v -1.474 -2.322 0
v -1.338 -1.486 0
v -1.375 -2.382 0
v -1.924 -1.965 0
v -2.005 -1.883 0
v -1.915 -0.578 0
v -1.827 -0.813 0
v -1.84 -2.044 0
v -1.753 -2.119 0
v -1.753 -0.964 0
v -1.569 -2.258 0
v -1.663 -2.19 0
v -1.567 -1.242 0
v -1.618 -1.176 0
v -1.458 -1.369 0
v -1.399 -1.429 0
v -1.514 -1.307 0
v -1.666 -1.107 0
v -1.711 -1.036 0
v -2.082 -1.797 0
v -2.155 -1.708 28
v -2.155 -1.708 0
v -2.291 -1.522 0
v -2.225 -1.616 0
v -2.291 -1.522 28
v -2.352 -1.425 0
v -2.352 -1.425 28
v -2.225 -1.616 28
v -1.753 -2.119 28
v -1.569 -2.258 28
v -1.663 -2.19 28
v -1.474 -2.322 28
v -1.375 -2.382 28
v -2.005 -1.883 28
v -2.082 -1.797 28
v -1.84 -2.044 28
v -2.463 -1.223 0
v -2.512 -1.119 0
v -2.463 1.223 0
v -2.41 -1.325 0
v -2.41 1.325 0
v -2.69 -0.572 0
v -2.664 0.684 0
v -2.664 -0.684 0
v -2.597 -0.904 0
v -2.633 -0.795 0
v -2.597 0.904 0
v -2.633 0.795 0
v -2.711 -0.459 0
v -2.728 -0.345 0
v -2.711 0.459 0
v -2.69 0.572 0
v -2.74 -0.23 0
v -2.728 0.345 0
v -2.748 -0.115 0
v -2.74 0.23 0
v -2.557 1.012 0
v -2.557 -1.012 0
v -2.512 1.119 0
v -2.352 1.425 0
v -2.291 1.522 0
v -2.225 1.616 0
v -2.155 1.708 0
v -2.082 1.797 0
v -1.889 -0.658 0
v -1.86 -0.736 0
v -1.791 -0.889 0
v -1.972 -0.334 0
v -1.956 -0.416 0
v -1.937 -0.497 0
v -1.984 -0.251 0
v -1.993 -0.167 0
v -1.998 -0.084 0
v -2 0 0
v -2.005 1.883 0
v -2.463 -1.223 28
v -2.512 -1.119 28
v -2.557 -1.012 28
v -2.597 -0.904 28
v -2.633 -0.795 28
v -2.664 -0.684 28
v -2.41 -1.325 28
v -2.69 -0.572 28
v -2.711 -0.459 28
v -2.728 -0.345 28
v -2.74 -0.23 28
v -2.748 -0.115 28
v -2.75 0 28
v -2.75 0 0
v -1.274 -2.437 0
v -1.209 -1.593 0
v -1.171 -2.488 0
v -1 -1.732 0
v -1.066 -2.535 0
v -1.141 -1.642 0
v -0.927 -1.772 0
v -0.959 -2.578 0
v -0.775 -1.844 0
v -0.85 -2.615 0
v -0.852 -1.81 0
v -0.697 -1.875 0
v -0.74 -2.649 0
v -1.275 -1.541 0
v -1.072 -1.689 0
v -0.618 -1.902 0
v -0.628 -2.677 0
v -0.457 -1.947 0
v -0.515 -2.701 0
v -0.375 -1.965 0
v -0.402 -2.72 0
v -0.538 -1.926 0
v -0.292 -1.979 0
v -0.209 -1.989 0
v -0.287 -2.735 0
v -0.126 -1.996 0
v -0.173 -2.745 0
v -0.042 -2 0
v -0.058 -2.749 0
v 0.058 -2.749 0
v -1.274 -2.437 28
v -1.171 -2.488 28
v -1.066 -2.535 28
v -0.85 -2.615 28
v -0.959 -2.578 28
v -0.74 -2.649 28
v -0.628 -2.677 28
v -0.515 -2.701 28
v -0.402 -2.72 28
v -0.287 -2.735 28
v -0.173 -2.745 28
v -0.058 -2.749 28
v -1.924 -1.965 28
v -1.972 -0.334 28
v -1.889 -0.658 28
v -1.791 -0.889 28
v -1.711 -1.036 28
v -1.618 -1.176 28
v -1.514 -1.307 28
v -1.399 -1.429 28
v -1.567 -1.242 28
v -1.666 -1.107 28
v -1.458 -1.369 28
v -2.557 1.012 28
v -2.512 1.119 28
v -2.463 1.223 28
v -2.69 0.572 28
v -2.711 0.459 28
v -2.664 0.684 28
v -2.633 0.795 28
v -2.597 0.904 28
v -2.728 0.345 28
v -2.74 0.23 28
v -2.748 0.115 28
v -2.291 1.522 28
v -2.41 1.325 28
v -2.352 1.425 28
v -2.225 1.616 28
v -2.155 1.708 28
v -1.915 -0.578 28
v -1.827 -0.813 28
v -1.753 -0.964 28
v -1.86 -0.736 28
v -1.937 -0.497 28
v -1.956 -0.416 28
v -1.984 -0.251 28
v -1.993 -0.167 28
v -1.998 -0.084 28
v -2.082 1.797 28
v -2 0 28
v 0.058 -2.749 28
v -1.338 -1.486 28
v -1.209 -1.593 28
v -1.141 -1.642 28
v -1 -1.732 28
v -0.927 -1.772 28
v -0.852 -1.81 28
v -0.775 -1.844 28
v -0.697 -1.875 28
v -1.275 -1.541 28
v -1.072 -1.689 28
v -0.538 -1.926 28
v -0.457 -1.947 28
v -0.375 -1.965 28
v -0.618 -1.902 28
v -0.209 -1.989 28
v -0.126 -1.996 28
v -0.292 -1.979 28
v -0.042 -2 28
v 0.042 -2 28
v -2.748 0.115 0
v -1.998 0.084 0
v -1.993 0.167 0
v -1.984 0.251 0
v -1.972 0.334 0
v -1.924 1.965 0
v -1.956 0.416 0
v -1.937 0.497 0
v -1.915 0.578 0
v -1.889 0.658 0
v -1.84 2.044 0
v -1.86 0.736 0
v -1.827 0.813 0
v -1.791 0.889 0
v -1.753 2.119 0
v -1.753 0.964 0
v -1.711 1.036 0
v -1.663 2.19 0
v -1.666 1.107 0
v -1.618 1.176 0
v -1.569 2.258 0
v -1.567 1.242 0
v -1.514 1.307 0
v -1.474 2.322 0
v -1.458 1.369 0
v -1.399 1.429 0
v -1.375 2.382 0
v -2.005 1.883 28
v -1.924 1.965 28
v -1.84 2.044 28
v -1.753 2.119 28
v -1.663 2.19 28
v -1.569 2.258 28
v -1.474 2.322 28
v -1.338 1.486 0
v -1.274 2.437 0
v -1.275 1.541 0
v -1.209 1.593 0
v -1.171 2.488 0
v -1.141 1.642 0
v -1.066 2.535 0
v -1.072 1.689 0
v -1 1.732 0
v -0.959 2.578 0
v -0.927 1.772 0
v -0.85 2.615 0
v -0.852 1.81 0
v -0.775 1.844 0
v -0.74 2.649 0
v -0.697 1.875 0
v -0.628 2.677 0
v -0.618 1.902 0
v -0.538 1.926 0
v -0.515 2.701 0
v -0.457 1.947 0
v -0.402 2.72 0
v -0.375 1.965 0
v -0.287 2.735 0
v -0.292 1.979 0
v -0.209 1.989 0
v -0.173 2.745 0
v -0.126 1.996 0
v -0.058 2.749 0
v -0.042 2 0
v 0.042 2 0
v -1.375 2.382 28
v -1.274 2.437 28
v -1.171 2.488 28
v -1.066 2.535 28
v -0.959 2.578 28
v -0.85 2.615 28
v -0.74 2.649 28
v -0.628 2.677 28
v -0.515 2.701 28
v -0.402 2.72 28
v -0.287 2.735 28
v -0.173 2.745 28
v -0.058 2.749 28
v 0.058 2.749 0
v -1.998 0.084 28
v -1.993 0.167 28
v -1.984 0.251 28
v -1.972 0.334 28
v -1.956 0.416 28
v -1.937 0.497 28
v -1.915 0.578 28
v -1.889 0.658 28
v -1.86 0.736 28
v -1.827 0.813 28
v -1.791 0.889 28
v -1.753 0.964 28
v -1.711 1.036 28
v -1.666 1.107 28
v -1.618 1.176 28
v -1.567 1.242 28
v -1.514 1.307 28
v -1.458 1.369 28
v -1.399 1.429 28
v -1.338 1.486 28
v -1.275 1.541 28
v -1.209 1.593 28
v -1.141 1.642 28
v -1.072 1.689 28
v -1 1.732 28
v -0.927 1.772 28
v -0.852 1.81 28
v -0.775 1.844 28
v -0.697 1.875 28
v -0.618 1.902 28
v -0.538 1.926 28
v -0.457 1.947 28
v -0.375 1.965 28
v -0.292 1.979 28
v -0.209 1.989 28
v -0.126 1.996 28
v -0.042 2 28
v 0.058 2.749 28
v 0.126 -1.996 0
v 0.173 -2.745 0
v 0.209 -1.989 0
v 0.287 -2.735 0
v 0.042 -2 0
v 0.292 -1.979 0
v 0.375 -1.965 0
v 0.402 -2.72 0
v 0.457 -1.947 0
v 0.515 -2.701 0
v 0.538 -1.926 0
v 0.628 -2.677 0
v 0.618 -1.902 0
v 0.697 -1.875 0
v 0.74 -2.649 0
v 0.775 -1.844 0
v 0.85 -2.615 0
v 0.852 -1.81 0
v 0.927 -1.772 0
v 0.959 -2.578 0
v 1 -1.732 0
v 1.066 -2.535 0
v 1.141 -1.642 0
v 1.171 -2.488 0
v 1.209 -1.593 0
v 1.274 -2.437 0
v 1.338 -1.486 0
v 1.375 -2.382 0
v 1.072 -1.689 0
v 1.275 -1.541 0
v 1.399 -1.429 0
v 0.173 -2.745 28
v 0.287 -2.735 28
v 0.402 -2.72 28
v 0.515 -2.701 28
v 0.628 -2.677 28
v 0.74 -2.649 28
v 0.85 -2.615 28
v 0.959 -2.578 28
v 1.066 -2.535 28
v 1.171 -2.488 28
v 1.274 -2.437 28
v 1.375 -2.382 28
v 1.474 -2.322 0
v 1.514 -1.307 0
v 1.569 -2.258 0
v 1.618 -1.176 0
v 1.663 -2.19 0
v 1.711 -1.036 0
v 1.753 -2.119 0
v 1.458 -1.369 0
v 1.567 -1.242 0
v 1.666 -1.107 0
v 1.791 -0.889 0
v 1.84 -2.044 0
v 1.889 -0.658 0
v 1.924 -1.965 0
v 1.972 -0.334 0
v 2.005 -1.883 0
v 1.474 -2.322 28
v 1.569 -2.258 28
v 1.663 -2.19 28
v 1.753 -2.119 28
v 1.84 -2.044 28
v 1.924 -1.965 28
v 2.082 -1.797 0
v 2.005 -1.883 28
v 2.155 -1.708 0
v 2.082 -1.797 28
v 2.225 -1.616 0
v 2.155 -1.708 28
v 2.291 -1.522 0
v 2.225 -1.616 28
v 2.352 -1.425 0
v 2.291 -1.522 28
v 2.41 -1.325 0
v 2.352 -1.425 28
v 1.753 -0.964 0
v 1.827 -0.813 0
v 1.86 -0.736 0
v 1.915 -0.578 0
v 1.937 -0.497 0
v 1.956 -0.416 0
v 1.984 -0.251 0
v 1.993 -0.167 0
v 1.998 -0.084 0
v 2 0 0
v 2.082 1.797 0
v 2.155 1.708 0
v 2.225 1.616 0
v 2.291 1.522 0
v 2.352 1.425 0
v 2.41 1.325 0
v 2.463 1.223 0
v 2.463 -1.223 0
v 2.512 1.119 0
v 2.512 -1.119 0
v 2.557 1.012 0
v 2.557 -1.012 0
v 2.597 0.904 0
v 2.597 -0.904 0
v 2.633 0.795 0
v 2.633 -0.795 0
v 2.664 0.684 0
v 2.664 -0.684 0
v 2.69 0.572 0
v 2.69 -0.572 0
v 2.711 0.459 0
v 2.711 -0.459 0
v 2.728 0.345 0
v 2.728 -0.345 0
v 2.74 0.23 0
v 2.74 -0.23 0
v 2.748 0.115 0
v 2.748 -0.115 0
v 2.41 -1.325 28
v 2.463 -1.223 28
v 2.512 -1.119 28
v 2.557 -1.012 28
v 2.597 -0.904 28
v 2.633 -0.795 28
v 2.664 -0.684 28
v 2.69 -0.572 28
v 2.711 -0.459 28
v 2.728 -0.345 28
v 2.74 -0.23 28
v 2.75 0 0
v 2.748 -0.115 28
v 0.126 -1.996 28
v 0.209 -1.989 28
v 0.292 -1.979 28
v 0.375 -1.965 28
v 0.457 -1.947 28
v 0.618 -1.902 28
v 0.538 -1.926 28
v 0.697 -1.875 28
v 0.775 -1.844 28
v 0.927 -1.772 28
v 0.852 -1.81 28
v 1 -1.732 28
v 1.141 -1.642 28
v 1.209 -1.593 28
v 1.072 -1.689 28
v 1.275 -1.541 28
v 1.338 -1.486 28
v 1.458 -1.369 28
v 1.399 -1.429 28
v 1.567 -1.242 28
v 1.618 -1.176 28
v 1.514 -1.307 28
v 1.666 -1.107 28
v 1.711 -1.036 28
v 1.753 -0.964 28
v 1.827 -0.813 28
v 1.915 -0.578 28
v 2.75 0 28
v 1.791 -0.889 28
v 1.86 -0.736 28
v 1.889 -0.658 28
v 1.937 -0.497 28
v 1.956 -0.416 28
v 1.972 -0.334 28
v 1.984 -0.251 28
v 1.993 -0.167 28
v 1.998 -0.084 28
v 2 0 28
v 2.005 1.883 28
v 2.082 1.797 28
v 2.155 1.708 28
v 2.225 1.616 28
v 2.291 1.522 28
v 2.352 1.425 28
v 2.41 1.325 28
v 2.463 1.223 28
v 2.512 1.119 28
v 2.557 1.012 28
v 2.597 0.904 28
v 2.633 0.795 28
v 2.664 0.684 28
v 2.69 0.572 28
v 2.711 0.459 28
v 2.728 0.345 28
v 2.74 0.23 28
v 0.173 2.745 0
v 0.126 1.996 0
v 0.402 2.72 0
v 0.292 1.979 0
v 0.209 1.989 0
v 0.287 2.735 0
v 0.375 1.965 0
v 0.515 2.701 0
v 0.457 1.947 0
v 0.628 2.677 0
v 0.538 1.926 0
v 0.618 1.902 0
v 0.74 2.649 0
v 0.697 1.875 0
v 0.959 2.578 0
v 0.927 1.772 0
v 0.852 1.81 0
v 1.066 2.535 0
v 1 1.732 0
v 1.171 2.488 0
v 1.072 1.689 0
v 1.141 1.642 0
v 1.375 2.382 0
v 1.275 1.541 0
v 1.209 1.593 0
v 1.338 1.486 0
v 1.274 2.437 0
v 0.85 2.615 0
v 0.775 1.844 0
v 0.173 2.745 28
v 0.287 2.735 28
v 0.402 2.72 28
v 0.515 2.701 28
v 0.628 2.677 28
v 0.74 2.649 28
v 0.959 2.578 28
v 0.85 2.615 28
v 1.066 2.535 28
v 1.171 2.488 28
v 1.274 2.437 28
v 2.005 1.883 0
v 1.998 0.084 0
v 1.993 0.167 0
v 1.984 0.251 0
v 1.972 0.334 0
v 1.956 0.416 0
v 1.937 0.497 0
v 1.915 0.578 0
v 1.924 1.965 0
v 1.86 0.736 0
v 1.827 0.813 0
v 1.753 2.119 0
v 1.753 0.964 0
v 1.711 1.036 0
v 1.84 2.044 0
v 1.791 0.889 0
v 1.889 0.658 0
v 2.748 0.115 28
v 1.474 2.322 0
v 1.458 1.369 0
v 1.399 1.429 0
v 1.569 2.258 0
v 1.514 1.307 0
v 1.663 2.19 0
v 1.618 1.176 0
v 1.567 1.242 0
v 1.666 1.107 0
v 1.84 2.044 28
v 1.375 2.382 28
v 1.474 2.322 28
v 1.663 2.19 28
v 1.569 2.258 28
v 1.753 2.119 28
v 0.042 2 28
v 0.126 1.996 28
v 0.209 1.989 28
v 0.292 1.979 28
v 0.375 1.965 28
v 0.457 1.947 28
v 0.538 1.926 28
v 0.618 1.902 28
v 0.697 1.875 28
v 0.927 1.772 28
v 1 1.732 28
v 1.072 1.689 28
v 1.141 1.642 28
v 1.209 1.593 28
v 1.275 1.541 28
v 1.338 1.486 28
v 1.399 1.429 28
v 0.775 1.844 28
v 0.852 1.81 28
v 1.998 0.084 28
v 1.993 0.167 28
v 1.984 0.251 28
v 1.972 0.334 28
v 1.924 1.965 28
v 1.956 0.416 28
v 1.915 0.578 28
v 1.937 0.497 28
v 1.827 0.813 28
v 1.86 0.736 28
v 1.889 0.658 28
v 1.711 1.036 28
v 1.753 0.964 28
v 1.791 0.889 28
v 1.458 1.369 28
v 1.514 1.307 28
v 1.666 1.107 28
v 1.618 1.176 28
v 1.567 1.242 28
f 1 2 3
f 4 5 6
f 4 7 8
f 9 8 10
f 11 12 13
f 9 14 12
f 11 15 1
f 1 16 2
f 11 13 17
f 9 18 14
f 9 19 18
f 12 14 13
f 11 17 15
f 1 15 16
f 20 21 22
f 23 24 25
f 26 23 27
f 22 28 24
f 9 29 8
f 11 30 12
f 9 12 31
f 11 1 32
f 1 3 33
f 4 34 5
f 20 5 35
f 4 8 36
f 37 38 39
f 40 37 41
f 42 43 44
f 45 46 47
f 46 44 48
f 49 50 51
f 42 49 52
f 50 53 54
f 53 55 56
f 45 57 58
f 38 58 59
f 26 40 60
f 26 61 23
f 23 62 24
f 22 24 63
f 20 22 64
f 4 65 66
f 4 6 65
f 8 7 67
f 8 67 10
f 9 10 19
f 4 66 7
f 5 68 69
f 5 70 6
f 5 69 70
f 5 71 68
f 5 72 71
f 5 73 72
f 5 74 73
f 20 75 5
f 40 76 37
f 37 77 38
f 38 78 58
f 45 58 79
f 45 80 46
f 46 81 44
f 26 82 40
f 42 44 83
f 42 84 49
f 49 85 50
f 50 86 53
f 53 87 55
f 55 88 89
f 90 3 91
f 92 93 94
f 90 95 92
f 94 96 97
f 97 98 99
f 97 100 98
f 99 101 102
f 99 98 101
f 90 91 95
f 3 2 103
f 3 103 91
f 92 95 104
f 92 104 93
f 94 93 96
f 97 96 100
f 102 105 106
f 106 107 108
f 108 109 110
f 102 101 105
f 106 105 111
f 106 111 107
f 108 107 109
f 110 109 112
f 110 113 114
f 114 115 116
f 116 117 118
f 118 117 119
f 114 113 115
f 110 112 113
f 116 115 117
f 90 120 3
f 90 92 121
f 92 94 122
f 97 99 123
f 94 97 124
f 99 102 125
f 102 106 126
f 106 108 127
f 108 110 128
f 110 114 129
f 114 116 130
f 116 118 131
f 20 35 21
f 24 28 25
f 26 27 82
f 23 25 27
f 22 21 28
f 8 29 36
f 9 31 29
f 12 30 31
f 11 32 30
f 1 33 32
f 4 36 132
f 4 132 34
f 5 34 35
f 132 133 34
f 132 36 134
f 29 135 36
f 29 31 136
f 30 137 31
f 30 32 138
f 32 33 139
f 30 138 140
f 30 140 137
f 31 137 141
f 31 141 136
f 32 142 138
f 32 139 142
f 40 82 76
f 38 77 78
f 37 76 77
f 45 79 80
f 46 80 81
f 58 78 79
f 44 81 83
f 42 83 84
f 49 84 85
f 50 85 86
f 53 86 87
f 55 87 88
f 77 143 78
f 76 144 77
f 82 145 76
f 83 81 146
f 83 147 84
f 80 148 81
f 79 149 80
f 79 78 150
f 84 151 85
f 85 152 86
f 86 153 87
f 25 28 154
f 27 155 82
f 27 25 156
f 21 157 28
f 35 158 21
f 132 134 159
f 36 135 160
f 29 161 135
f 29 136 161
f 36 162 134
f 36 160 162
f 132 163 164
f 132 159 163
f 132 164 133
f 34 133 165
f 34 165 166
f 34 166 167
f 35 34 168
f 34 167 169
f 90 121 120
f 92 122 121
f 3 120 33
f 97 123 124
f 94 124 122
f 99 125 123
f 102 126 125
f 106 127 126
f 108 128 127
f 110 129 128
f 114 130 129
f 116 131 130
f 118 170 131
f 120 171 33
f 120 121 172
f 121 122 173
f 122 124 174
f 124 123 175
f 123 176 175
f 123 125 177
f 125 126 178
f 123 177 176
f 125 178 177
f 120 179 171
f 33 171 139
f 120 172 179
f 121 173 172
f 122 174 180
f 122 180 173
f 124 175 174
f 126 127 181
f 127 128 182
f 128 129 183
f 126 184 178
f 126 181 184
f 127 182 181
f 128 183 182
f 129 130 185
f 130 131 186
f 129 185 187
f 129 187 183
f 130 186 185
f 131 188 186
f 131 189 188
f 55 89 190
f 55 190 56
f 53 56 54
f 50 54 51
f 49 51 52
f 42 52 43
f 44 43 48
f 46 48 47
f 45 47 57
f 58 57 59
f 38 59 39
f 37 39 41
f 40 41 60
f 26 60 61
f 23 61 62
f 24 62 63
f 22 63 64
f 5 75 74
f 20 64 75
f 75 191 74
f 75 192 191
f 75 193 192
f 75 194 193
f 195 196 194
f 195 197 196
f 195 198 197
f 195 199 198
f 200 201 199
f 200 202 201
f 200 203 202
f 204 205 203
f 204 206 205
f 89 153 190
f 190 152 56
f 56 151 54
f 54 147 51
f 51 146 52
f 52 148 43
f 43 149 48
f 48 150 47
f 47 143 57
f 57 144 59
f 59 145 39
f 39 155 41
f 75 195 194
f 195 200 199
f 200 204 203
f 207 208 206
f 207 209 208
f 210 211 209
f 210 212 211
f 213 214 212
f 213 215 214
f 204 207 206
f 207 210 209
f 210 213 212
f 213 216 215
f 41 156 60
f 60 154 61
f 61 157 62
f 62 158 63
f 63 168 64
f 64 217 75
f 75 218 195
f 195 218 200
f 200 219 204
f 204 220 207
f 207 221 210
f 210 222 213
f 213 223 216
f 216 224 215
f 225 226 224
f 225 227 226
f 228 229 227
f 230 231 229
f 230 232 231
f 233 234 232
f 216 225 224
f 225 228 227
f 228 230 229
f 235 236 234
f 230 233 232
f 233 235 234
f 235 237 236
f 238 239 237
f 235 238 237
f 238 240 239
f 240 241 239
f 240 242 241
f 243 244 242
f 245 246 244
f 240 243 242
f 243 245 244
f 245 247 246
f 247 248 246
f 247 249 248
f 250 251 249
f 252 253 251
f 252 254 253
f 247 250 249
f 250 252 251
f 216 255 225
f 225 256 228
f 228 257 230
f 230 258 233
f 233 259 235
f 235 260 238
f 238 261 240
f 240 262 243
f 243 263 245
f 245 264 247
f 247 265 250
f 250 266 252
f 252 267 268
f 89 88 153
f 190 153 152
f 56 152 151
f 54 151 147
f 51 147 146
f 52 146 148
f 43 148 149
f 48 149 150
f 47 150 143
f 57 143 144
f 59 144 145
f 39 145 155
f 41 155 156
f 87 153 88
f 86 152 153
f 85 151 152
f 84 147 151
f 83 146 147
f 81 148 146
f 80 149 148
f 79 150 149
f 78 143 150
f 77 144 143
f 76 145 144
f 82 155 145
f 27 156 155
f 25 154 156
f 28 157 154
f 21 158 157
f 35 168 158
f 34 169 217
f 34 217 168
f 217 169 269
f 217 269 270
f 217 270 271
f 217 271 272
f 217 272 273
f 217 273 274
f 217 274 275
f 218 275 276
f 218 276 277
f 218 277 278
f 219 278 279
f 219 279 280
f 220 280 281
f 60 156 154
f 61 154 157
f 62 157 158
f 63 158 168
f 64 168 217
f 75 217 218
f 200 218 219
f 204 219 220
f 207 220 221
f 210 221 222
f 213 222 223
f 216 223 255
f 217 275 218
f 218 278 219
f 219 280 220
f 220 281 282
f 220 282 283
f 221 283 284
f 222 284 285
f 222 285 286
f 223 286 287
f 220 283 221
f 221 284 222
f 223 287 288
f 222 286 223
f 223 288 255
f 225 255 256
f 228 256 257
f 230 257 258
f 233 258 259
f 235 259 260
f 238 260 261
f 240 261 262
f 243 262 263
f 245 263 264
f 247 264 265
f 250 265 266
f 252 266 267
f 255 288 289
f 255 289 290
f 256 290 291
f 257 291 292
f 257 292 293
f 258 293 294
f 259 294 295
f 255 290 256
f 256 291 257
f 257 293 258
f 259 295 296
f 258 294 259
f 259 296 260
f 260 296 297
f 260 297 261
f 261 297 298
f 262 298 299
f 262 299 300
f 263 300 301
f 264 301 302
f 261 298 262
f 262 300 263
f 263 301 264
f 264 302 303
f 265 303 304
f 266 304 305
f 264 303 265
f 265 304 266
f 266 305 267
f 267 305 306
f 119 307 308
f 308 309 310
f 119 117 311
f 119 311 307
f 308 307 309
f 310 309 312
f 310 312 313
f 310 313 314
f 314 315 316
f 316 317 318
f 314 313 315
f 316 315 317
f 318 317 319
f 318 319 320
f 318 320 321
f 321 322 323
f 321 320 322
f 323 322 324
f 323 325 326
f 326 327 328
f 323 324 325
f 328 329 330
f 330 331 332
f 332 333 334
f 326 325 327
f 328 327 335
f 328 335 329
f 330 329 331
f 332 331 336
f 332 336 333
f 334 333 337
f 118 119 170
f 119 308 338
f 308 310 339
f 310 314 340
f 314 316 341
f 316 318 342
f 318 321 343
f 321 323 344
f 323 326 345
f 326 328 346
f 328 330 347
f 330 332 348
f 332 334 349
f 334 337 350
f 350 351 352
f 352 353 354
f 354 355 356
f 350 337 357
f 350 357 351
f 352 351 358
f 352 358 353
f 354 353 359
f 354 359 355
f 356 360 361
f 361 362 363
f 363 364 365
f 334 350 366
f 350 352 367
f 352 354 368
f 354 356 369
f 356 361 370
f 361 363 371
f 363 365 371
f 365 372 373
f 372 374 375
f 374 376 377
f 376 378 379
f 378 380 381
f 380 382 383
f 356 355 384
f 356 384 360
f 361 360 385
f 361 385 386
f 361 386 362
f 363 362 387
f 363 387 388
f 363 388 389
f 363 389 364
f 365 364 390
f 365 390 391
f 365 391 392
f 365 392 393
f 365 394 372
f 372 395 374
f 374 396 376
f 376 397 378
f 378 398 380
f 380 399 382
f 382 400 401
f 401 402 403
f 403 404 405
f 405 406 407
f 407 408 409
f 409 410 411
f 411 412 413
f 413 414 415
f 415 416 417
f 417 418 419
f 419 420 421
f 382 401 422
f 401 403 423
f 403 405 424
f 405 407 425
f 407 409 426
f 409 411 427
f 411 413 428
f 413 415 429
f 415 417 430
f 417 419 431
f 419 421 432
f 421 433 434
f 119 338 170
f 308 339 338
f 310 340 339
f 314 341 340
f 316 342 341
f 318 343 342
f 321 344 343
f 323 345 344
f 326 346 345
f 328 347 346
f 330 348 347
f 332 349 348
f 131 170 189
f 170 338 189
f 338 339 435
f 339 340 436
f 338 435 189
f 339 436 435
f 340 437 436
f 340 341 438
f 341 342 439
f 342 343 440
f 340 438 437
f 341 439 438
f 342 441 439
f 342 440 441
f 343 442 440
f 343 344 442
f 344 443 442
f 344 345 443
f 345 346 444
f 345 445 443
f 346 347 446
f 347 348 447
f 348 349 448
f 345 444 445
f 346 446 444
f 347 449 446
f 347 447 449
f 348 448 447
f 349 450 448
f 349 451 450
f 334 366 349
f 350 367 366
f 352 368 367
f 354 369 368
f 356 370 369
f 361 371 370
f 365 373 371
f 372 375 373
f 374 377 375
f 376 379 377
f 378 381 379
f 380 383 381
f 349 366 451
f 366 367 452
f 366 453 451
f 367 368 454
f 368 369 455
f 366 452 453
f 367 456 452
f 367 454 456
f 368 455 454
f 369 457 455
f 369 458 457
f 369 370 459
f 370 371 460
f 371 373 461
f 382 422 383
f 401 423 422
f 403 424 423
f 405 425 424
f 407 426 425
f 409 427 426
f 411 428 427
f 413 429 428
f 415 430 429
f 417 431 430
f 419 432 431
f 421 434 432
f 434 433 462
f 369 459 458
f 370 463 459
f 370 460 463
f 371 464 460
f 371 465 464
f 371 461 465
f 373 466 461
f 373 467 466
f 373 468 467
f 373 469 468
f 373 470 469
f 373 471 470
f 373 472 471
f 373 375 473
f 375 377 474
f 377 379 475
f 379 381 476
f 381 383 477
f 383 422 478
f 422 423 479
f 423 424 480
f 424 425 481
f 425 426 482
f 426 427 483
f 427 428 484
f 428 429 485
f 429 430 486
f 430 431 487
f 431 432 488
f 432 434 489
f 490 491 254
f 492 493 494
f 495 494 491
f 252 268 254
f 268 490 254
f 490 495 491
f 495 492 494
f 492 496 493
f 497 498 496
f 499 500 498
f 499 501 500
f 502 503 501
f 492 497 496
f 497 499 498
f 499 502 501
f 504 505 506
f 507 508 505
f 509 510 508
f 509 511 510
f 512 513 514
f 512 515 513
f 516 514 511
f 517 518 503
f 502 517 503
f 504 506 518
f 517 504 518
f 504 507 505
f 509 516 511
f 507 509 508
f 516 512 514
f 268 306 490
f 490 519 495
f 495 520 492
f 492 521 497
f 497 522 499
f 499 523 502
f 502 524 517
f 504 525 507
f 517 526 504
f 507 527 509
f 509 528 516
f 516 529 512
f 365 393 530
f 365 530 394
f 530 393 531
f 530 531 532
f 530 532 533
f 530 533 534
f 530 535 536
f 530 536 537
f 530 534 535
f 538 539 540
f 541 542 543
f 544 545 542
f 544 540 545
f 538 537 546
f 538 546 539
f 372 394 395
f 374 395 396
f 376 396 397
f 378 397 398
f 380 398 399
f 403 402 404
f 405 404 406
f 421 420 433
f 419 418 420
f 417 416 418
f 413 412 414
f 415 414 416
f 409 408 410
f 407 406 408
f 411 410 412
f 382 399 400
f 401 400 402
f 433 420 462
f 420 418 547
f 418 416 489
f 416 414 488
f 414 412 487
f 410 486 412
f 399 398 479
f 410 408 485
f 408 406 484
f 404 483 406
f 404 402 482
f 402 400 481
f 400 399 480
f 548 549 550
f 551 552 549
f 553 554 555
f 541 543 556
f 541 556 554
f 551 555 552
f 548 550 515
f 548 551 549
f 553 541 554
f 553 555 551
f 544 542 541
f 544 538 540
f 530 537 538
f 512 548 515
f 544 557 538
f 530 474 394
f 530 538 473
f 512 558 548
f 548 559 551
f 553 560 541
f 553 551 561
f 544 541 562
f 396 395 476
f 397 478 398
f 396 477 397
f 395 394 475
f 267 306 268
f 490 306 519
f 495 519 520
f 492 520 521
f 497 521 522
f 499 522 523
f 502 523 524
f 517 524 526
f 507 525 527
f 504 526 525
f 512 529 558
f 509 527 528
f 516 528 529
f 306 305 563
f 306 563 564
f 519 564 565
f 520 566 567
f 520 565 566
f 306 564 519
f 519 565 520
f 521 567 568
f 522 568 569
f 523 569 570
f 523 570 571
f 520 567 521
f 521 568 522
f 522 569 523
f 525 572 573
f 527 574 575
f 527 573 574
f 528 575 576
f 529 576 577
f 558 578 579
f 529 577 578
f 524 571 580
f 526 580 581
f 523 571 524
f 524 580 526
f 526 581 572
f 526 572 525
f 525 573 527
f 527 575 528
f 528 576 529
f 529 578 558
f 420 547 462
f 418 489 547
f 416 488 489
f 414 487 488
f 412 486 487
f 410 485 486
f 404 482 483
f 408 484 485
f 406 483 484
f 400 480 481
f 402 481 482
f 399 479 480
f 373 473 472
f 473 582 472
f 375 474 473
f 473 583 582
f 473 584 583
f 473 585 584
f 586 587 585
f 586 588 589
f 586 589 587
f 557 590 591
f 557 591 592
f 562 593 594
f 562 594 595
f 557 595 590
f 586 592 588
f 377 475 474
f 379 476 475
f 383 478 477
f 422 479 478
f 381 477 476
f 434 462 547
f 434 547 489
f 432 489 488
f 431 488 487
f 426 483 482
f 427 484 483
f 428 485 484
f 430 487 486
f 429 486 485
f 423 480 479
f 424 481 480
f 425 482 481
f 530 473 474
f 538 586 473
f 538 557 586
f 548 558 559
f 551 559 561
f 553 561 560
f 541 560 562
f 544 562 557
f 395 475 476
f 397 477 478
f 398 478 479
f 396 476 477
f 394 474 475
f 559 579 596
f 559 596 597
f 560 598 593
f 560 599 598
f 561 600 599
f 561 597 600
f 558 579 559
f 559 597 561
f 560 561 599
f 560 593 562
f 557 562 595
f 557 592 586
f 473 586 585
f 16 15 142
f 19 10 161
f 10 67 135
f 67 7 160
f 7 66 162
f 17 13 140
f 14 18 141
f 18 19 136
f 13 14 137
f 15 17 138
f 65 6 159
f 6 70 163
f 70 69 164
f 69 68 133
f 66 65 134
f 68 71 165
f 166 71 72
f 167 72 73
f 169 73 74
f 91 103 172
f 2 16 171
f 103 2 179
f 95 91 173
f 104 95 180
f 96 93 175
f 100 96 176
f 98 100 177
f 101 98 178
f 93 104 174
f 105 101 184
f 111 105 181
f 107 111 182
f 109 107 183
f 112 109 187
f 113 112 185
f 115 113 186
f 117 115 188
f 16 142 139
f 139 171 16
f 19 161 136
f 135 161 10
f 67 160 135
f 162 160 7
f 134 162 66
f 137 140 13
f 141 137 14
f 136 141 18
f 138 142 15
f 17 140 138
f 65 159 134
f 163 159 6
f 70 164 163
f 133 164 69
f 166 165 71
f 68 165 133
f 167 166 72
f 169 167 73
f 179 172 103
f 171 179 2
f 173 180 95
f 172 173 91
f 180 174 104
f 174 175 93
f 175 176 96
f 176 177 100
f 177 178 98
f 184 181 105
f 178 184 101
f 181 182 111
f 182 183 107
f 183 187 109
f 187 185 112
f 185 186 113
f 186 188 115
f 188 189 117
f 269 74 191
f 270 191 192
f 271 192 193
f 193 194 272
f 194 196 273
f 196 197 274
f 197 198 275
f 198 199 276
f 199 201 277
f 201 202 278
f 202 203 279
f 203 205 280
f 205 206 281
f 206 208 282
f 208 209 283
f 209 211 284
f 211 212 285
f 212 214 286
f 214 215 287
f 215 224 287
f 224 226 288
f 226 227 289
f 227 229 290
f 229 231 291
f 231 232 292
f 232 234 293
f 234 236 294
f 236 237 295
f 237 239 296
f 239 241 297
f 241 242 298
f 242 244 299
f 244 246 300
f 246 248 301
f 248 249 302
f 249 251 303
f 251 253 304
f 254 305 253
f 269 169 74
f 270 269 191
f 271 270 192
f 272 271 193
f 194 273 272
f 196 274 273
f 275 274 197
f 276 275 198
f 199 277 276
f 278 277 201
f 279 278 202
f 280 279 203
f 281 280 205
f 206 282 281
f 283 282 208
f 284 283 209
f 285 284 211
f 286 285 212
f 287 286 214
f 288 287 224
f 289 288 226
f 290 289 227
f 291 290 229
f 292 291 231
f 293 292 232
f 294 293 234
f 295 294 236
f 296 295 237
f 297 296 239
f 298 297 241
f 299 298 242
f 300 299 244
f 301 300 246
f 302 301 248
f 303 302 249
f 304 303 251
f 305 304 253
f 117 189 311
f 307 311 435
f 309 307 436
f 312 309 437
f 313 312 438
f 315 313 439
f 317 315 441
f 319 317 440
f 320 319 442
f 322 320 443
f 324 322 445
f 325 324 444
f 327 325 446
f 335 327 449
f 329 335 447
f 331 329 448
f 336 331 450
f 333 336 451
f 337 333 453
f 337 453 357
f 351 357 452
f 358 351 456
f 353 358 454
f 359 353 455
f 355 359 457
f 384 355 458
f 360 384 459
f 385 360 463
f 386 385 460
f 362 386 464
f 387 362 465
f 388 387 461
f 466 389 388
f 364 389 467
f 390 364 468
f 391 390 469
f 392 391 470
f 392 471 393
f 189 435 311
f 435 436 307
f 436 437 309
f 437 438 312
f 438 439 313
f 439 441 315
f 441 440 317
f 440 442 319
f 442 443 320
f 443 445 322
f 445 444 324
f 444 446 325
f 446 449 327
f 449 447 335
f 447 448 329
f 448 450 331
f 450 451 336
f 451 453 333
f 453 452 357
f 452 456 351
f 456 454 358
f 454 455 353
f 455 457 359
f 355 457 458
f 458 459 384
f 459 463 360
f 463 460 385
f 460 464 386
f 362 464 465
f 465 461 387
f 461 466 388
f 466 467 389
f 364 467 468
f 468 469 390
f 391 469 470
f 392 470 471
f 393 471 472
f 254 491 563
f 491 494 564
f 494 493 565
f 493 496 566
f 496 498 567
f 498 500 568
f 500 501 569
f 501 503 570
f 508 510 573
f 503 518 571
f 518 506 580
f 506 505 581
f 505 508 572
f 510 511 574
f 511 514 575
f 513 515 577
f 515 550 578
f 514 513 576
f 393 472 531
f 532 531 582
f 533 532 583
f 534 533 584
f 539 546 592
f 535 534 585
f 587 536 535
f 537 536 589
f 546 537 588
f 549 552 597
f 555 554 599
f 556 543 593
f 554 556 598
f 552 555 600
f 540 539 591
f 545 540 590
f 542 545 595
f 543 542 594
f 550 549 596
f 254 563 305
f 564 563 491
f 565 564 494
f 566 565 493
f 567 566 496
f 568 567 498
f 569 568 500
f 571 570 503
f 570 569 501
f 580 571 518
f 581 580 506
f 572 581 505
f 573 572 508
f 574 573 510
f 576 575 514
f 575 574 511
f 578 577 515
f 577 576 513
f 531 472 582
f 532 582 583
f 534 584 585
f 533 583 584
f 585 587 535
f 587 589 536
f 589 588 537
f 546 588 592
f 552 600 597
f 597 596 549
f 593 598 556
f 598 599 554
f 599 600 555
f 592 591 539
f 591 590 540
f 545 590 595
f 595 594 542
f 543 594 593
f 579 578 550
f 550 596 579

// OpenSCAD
$fn = 150;

difference(){
    translate([0,0,0])
    cylinder(28,2.75,2.75,false);
    cylinder(28,2,2,false);
    }
